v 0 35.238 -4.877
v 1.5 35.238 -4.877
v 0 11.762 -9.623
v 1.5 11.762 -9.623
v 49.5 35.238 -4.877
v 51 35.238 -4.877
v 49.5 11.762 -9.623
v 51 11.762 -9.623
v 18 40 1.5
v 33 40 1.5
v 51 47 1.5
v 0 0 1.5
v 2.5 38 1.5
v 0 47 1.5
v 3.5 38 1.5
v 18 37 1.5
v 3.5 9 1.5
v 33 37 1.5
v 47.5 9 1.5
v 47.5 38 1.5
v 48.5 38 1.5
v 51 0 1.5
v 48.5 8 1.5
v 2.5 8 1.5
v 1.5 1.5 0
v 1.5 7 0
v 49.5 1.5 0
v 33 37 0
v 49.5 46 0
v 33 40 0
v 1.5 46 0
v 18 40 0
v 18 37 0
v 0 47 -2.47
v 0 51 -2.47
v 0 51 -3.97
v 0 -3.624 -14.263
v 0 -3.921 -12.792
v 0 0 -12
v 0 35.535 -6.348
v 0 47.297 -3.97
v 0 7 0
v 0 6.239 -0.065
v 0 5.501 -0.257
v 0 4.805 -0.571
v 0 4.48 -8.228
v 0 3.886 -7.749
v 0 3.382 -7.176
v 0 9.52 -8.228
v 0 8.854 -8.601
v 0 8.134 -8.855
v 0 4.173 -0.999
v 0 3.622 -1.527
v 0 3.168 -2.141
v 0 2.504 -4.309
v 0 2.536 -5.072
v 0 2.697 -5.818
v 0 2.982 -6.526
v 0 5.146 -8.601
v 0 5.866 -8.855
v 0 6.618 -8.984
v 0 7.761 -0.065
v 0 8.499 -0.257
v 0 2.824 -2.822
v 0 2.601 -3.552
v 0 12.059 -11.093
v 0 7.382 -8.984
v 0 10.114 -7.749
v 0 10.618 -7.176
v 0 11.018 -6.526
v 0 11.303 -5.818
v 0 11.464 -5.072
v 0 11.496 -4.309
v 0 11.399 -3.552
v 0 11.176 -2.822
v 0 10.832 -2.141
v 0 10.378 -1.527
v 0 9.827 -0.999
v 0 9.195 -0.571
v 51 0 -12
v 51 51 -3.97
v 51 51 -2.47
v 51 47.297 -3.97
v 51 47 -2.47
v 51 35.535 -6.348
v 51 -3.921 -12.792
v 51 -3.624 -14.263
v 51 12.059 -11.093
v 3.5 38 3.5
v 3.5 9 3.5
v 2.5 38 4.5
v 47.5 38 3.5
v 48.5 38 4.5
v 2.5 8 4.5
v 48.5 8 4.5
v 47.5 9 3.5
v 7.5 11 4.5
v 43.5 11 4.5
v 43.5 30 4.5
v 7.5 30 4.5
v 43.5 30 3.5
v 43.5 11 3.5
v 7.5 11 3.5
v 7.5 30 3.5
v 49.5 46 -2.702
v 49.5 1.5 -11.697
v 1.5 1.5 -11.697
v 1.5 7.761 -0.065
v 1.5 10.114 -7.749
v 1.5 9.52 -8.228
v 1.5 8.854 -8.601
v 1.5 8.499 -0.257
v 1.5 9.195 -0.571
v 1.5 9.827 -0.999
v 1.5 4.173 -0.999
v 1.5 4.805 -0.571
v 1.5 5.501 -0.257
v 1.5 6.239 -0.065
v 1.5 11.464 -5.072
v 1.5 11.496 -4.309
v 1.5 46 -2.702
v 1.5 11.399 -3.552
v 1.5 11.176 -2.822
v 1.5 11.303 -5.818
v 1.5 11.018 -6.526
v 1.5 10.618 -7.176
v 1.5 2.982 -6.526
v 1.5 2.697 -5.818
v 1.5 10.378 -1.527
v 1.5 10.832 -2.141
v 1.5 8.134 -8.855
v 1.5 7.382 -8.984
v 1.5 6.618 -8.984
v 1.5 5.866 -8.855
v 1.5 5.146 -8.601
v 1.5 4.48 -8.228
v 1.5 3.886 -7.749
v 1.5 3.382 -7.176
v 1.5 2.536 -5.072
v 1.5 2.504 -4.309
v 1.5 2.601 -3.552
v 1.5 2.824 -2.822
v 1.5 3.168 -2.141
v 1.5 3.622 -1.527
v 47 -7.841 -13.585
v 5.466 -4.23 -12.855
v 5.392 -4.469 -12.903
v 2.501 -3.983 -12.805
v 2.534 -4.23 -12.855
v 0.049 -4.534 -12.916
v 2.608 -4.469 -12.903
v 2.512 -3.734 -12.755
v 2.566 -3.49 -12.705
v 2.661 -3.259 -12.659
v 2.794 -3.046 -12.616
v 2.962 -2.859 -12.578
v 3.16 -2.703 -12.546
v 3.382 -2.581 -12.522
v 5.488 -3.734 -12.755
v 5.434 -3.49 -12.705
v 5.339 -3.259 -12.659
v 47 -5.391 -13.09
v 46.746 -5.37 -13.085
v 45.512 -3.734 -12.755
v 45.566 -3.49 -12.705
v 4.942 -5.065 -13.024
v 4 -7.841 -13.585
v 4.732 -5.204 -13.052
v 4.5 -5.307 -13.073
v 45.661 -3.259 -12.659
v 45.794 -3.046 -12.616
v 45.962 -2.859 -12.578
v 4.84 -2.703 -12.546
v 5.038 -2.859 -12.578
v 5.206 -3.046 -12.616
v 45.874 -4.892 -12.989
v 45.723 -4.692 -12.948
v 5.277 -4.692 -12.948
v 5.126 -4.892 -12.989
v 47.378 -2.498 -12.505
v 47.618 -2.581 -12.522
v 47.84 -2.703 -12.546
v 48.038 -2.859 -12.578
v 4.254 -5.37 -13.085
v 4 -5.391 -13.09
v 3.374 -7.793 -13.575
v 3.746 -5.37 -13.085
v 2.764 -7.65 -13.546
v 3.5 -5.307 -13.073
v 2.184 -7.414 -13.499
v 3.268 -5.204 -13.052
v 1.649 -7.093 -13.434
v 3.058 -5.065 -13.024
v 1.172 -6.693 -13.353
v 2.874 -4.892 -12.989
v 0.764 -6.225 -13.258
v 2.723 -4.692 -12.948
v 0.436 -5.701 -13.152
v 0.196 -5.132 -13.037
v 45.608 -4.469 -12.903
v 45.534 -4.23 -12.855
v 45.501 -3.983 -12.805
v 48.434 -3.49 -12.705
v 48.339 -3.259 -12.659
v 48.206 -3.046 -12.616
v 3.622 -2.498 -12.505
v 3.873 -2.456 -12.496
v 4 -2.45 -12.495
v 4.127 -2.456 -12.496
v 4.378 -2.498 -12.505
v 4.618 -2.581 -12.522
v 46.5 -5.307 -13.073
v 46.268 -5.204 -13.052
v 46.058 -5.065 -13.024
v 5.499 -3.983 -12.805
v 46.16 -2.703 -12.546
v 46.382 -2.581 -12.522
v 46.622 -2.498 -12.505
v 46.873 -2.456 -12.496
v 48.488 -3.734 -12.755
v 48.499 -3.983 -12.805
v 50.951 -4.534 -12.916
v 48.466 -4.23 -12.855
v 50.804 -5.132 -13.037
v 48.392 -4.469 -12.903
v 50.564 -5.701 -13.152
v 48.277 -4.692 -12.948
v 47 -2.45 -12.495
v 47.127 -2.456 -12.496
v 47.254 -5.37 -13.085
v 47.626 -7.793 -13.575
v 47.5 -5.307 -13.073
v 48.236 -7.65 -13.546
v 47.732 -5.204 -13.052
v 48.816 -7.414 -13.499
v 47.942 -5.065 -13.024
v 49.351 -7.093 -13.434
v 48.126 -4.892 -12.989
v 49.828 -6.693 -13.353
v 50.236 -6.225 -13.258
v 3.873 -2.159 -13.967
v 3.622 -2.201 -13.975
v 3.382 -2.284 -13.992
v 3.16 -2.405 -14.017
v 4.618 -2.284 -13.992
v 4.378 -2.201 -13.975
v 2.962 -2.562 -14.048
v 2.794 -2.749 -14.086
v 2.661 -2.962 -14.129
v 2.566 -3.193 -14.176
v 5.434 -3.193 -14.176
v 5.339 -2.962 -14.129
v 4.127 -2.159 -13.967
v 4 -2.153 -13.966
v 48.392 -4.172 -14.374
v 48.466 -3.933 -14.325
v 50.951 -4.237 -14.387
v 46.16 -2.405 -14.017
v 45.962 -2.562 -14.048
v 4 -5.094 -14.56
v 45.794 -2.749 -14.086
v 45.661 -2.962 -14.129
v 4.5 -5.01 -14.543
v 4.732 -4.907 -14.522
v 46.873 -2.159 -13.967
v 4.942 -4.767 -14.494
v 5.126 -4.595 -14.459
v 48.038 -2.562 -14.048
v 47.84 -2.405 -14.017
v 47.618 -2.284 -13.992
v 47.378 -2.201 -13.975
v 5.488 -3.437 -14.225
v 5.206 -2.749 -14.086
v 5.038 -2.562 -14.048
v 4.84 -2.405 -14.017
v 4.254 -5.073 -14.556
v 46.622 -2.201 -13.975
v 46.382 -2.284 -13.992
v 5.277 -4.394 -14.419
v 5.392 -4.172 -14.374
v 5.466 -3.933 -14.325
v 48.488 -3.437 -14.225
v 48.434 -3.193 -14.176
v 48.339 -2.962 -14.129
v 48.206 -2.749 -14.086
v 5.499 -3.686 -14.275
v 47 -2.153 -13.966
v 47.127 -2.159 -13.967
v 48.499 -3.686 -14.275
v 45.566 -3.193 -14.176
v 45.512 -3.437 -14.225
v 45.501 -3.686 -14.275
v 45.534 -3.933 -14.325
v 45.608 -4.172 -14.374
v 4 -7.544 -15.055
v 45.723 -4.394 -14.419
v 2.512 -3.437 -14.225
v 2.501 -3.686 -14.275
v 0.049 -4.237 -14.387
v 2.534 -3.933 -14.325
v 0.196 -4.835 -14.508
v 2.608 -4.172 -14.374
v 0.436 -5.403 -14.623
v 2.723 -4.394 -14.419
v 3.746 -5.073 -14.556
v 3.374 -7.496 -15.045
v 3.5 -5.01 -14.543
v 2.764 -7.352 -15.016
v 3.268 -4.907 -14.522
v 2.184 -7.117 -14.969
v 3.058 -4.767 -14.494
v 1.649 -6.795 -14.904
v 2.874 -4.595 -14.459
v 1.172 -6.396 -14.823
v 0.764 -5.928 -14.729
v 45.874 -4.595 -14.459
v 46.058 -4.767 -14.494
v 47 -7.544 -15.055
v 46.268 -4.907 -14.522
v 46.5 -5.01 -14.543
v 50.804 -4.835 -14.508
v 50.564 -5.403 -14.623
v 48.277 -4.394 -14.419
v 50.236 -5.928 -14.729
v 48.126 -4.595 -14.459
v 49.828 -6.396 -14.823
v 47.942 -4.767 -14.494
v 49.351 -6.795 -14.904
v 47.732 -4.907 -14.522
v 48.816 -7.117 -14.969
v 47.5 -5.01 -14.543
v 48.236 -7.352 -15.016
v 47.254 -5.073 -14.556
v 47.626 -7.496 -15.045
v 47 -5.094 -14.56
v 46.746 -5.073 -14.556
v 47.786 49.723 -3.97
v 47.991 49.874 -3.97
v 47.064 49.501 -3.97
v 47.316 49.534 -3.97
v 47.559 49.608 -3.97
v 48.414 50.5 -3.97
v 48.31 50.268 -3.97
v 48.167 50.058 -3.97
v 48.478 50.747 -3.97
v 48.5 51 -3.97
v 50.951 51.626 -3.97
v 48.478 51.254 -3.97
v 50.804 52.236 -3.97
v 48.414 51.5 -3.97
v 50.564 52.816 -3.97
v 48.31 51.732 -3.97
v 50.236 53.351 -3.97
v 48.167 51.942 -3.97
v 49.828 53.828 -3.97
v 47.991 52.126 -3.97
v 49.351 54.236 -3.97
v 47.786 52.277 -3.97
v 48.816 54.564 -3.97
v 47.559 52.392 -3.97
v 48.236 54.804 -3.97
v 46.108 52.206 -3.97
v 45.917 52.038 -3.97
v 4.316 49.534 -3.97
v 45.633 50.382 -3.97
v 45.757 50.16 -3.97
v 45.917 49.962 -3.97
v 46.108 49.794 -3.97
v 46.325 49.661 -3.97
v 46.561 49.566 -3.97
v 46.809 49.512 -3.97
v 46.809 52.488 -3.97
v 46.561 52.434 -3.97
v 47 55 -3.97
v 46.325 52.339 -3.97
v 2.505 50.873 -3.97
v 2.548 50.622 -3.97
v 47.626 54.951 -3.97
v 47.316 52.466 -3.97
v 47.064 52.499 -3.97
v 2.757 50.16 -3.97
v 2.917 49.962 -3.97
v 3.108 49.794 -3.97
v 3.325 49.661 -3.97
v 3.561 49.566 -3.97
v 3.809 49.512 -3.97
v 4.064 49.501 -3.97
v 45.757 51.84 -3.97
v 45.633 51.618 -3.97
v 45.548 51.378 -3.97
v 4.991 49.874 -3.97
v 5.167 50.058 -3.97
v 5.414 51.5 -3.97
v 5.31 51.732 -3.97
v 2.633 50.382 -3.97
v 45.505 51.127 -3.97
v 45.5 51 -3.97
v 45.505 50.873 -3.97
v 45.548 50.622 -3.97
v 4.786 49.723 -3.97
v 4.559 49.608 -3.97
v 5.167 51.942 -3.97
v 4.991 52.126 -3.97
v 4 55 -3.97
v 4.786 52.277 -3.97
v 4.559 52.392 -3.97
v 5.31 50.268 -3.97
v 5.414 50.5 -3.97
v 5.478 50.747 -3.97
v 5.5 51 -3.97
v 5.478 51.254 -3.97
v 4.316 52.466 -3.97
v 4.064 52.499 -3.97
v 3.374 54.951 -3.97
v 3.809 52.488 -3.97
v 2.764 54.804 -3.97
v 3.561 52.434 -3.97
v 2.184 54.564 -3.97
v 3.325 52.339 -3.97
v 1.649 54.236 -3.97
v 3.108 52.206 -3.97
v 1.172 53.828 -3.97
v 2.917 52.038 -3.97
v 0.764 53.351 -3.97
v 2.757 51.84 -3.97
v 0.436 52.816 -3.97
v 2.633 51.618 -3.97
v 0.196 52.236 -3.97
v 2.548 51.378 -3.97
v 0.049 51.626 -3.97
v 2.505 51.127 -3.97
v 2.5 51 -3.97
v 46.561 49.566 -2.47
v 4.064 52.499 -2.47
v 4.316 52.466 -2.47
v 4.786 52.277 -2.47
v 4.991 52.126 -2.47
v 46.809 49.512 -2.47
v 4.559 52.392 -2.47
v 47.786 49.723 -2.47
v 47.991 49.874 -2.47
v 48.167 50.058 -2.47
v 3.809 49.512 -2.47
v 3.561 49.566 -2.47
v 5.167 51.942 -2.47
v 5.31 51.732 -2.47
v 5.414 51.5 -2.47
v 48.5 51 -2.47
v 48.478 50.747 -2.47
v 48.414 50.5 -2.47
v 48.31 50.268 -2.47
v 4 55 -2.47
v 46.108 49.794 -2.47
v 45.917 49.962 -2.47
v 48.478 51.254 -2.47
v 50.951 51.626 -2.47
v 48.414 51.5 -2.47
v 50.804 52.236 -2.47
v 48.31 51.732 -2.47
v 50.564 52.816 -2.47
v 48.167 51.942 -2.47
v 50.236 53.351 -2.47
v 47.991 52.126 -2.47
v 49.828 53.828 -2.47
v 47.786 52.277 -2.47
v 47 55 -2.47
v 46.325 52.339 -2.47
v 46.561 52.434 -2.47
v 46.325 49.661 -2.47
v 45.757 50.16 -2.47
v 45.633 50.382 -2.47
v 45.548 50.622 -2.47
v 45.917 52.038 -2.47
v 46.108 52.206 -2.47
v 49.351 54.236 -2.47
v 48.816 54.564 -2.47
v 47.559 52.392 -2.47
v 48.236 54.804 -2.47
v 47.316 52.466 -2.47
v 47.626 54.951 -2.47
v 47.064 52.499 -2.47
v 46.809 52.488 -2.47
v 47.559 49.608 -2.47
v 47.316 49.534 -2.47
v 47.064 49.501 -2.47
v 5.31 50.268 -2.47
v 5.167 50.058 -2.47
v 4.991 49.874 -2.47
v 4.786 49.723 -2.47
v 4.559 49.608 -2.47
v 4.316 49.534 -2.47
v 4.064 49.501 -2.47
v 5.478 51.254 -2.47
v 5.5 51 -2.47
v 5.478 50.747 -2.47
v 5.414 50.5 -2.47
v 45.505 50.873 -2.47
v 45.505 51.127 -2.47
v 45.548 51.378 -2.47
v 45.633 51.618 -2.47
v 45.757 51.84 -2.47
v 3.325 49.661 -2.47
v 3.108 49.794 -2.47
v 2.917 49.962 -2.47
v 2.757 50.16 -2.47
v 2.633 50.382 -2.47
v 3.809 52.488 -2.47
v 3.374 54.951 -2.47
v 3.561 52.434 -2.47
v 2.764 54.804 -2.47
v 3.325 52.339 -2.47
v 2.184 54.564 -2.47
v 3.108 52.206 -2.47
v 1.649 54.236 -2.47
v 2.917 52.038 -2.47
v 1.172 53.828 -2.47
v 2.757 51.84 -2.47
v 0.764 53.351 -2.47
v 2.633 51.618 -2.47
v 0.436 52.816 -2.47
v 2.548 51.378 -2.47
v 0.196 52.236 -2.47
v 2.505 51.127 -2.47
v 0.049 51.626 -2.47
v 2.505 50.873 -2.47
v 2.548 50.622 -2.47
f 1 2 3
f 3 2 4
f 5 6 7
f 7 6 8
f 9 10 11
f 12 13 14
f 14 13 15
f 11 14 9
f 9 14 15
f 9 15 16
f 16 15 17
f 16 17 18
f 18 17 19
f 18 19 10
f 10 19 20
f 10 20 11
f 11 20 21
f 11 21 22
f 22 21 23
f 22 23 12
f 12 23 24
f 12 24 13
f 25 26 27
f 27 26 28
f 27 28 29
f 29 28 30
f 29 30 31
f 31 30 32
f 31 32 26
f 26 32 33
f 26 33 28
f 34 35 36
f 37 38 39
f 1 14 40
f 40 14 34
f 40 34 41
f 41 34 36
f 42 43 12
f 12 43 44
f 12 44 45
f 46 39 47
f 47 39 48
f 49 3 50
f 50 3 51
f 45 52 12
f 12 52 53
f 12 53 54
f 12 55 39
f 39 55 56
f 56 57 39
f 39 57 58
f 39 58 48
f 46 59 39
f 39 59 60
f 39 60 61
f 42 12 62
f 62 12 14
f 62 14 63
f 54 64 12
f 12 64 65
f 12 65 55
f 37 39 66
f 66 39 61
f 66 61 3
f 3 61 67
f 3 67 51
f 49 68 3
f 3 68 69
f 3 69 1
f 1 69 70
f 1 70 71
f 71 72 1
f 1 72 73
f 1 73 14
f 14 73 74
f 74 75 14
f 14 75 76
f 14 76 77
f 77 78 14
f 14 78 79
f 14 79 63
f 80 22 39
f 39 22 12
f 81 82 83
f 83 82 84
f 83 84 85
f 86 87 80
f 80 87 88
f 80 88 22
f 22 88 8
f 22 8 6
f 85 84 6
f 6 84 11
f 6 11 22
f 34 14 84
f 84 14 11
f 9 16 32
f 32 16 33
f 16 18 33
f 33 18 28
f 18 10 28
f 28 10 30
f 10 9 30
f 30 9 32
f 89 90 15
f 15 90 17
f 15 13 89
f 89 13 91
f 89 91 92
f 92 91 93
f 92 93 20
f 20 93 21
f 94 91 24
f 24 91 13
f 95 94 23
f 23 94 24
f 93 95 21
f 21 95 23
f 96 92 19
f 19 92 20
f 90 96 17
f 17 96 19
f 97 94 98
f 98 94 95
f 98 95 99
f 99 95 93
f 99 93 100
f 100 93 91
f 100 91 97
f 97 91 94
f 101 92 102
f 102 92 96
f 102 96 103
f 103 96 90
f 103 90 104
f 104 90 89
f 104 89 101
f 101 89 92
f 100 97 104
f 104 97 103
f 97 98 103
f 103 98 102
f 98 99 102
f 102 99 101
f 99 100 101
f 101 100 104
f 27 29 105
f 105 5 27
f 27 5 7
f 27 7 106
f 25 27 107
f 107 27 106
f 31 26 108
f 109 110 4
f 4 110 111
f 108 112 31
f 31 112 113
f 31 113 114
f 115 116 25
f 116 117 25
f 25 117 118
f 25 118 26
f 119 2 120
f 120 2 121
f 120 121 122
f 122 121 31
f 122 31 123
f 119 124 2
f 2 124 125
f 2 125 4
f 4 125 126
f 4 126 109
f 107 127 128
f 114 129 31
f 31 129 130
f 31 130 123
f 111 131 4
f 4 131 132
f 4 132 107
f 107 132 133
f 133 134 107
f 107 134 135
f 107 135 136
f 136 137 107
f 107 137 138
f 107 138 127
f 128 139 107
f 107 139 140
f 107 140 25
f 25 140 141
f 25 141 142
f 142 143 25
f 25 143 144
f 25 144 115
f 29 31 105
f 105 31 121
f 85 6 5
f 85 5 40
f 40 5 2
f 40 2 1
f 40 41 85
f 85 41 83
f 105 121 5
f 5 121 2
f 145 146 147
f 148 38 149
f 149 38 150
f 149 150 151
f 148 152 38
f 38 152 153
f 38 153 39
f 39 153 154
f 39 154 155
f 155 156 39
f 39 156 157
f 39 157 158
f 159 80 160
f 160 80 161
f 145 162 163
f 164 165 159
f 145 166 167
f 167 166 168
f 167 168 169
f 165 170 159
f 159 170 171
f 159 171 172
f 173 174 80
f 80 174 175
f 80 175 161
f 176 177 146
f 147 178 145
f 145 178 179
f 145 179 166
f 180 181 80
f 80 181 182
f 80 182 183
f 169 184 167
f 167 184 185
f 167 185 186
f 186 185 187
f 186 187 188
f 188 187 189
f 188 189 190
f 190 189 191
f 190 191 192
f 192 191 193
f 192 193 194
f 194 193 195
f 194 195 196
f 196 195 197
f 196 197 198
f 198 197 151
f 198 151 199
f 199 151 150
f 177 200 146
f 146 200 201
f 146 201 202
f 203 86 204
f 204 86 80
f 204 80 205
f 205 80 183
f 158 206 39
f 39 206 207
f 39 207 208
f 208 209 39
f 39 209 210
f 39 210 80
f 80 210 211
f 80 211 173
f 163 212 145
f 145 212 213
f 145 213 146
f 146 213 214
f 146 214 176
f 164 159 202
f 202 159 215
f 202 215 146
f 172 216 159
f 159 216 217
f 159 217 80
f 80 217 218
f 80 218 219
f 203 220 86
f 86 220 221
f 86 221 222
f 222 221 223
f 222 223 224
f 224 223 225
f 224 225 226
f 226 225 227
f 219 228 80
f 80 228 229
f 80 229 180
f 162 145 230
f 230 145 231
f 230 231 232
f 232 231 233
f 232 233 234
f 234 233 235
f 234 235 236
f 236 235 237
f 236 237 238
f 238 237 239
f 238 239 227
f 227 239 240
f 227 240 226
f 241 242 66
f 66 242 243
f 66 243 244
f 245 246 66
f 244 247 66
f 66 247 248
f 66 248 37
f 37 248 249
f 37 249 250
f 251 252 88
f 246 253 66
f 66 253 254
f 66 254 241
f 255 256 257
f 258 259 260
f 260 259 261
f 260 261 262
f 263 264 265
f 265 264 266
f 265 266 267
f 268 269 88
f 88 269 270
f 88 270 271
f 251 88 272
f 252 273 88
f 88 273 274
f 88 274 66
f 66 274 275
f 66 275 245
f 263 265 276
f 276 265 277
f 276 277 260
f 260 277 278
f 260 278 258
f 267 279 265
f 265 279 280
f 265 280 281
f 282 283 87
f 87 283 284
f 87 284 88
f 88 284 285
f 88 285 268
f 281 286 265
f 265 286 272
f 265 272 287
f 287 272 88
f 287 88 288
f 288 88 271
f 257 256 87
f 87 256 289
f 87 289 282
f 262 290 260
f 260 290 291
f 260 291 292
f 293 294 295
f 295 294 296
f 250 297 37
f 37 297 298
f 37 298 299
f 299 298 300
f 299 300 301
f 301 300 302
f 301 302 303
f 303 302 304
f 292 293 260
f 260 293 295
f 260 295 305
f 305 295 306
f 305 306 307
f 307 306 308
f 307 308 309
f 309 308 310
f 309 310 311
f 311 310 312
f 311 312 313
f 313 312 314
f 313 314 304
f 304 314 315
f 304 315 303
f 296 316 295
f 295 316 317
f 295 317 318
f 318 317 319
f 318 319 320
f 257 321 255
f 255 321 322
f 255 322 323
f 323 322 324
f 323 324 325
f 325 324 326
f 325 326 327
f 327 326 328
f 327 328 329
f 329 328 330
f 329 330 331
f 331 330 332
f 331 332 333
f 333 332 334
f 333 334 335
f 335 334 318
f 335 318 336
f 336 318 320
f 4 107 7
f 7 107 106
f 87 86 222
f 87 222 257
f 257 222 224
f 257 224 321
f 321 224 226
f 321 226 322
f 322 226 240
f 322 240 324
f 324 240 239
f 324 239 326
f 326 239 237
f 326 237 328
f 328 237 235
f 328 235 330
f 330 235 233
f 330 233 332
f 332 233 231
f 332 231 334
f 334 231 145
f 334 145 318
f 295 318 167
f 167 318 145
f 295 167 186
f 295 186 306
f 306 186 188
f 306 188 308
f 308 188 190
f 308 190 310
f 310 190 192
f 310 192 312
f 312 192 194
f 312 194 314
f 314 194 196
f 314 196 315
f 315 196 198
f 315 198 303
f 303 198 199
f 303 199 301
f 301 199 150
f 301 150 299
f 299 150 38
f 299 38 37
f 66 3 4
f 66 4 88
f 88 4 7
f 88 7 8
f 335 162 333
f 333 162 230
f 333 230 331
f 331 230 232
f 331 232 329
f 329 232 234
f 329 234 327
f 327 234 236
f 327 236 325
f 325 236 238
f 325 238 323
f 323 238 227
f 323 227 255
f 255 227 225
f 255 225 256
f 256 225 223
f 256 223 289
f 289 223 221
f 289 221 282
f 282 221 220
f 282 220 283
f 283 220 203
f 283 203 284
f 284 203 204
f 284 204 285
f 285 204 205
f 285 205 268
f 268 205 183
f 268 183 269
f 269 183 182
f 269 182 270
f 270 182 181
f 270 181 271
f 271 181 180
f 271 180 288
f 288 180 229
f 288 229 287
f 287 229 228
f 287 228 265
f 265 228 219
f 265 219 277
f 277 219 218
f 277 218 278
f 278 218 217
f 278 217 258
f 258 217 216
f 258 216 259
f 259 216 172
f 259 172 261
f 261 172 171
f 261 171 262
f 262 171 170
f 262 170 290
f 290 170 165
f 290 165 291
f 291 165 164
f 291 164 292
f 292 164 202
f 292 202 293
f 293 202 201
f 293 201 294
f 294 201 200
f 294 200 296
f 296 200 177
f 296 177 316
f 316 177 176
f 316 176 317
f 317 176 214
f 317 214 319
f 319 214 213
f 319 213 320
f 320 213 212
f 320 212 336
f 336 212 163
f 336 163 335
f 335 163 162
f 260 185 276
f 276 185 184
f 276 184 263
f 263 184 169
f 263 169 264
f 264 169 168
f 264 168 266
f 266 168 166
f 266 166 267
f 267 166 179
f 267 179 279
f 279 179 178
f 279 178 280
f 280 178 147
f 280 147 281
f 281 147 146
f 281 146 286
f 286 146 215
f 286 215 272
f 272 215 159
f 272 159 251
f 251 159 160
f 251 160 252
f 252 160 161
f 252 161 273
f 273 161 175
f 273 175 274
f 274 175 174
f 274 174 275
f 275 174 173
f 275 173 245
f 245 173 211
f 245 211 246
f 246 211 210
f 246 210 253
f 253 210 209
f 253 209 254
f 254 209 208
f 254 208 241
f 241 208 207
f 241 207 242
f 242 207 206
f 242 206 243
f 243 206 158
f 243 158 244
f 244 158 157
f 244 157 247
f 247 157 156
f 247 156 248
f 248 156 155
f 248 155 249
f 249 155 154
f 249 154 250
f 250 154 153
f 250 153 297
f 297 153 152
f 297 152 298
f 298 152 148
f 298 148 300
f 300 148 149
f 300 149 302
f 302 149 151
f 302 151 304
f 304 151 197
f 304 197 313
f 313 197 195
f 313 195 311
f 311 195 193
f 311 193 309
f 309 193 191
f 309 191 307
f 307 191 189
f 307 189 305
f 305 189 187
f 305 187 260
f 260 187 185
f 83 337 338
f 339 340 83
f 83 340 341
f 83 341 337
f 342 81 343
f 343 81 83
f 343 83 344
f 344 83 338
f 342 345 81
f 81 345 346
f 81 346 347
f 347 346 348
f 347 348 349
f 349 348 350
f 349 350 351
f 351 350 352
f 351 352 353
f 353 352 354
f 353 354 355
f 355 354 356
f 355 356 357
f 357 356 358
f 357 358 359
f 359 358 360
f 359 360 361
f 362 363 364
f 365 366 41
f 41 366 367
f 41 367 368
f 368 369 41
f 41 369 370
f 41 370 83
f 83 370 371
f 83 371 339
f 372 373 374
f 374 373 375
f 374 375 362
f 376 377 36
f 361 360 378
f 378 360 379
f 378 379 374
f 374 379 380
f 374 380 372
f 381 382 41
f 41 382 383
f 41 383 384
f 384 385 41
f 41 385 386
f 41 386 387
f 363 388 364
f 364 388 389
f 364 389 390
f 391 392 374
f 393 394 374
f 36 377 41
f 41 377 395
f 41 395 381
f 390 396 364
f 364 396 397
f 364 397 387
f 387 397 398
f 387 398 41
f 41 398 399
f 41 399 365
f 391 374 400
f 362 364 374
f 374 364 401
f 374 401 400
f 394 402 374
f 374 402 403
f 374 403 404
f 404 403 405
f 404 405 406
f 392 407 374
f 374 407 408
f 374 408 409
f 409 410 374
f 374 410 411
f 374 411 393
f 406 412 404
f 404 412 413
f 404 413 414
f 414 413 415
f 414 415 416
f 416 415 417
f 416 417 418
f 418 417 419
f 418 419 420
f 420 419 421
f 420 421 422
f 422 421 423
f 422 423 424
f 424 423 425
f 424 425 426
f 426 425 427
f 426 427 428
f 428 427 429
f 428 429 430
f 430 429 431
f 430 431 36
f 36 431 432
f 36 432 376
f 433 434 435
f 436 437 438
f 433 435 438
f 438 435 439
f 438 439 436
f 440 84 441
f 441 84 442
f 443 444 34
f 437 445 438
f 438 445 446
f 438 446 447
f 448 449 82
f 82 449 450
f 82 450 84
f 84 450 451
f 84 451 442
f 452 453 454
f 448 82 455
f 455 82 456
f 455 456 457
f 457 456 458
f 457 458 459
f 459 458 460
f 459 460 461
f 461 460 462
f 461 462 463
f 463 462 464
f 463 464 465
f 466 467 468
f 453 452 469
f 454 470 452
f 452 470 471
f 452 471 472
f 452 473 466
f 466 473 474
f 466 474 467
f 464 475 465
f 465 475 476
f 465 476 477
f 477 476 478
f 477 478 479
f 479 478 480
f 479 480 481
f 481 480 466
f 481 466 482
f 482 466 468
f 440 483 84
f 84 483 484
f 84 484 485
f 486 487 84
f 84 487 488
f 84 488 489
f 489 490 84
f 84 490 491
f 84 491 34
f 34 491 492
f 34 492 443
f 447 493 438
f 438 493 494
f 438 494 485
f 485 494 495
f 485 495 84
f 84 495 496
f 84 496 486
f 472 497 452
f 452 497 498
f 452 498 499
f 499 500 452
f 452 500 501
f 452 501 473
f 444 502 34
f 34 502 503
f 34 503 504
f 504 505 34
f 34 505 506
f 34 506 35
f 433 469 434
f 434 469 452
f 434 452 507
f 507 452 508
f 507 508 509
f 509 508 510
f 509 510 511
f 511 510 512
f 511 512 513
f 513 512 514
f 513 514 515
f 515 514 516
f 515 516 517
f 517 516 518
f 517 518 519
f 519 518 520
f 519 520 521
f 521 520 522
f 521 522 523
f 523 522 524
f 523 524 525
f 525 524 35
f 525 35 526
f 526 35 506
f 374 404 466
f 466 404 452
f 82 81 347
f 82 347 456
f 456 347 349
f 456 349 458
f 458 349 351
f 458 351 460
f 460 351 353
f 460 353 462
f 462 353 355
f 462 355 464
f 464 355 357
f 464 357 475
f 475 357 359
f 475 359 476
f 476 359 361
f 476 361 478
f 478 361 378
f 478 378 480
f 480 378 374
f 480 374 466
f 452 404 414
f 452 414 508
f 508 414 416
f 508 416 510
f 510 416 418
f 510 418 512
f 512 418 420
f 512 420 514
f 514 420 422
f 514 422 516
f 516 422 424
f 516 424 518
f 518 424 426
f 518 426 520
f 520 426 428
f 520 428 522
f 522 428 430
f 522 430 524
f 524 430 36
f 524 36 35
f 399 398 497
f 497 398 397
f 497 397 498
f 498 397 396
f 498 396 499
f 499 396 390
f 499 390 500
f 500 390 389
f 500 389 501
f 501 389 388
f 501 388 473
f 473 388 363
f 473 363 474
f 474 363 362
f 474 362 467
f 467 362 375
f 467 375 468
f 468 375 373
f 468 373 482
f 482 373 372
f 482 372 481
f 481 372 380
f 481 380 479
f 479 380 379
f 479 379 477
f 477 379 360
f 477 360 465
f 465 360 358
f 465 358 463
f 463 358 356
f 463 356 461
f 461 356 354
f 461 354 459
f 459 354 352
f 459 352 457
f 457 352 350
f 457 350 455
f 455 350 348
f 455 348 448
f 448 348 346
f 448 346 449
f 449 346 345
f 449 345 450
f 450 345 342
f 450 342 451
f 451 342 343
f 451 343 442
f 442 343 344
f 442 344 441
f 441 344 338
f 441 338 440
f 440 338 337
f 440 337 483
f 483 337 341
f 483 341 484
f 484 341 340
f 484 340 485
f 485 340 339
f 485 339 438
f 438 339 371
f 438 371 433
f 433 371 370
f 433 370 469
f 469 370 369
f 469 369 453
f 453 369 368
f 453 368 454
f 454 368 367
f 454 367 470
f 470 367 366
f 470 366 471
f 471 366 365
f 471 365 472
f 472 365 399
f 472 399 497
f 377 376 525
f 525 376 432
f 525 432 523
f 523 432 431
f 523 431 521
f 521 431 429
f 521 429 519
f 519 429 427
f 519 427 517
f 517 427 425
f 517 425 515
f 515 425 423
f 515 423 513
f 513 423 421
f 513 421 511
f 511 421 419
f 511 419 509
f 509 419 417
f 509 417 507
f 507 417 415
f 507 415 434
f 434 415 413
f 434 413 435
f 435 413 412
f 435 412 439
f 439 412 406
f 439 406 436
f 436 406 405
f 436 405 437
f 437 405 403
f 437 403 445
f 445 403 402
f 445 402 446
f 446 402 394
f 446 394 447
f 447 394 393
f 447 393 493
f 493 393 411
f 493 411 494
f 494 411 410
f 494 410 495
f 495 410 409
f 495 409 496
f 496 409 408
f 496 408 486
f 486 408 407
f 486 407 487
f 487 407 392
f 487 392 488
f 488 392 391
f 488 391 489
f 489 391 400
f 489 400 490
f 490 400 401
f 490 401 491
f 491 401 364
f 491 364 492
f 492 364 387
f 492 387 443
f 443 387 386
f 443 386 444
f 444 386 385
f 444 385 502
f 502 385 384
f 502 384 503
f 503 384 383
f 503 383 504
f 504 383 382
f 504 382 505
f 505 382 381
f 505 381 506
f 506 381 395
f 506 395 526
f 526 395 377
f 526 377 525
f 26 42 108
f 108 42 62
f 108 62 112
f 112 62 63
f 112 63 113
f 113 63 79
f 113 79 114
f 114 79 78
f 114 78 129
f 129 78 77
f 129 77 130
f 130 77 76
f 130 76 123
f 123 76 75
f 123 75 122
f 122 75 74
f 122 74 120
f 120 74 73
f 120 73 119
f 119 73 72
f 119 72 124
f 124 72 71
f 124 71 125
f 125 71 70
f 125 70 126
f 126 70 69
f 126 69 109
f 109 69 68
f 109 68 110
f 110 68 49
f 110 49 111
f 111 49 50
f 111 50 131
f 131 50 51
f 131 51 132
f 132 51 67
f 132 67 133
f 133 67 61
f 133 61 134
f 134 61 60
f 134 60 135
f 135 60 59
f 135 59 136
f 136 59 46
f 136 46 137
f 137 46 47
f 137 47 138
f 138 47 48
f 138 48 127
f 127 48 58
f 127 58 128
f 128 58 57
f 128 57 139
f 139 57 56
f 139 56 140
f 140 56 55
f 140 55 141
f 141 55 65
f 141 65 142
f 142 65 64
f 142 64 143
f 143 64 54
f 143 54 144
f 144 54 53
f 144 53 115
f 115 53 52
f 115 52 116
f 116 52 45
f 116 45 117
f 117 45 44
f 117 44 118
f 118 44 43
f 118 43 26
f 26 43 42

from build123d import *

# Parameters (mm, degrees)
SKETCH_1_W          = 51
SKETCH_1_H          = 47
SKETCH_1_W_2        = 15
SKETCH_1_H_2        = 3
EXTRUDE_1_DEPTH     = 1.5
EXTRUDE_2_DEPTH     = 2
SKETCH_3_W          = 46
SKETCH_3_H          = 30
SKETCH_3_W_2        = 36
SKETCH_3_H_2        = 19
EXTRUDE_3_DEPTH     = 1
SKETCH_4_W          = 51
SKETCH_4_H          = 47
SKETCH_4_W_2        = 48
SKETCH_4_H_2        = 44.5
EXTRUDE_4_DEPTH     = 12
CUT_EXTRUDE_1_DEPTH = 52
SKETCH_6_W          = 51
SKETCH_6_H          = 12
SKETCH_6_R          = 1.5
EXTRUDE_5_DEPTH     = 1.5
SKETCH_7_W          = 1.5
SKETCH_7_H          = 8
EXTRUDE_6_DEPTH     = 51
FILLET_1_R          = 4
CUT_EXTRUDE_2_REACH = 14.585
SKETCH_8_R          = 1.5
CUT_EXTRUDE_3_REACH = 53
SKETCH_9_R          = 4.5


with BuildPart() as part:
    # 草图1 → 凸台-拉伸1 (new body)
    with BuildSketch(Plane.XY):
        with Locations((25.5, 23.5)):
            Rectangle(SKETCH_1_W, SKETCH_1_H)
        with Locations((25.5, 38.5)):
            Rectangle(SKETCH_1_W_2, SKETCH_1_H_2, mode=Mode.SUBTRACT)
    extrude(amount=EXTRUDE_1_DEPTH)

    # 草图2 → 凸台-拉伸2 (add)
    with BuildSketch(Plane.XY.offset(1.5)):
        Polygon((2.5, 8), (48.5, 8), (48.5, 38), (47.5, 38), (47.5, 9), (3.5, 9), (3.5, 38), (2.5, 38), align=None)
    extrude(amount=EXTRUDE_2_DEPTH)

    # 草图3 → 凸台-拉伸3 (add)
    with BuildSketch(Plane.XY.offset(3.5)):
        with Locations((25.5, 23)):
            Rectangle(SKETCH_3_W, SKETCH_3_H)
        with Locations((25.5, 20.5)):
            Rectangle(SKETCH_3_W_2, SKETCH_3_H_2, mode=Mode.SUBTRACT)
    extrude(amount=EXTRUDE_3_DEPTH)

    # 草图4 → 凸台-拉伸4 (add)
    with BuildSketch(Plane(origin=(0, 0, 0), x_dir=(-1, 0, 0), z_dir=(0, 0, -1))):
        with Locations((-25.5, 23.5)):
            Rectangle(SKETCH_4_W, SKETCH_4_H)
        with Locations((-25.5, 23.75)):
            Rectangle(SKETCH_4_W_2, SKETCH_4_H_2, mode=Mode.SUBTRACT)
    extrude(amount=EXTRUDE_4_DEPTH)

    # 草图5 → 切除-拉伸1 (cut, through all)
    with BuildSketch(Plane(origin=(51, 0, 0), x_dir=(0, 0, -1), z_dir=(1, 0, 0))):
        Polygon((2.5, 47), (12, 47), (12, 0), align=None)
    extrude(amount=-CUT_EXTRUDE_1_DEPTH, mode=Mode.SUBTRACT)

    # 草图6 → 凸台-拉伸5 (add)
    with BuildSketch(Plane(origin=(0, 2.330325106, -11.52897684), x_dir=(-1, 0, 0), z_dir=(0, 0.198120998, -0.980177571))):
        with Locations((-25.5, 39.573043325)):
            Rectangle(SKETCH_6_W, SKETCH_6_H)
        with BuildLine():
            Line((-51, 9.62254802), (0, 9.62254802))
            Line((0, 9.62254802), (0, -6.37745198))
            ThreePointArc((0, -6.37745198), (-1.171572875, -9.205879105), (-4, -10.37745198))
            Line((-4, -10.37745198), (-47, -10.37745198))
            ThreePointArc((-47, -10.37745198), (-49.828427125, -9.205879105), (-51, -6.37745198))
            Line((-51, -6.37745198), (-51, 9.62254802))
        make_face()
        with Locations((-47, -6.37745198)):
            Circle(SKETCH_6_R, mode=Mode.SUBTRACT)
        with Locations((-4, -6.37745198)):
            Circle(SKETCH_6_R, mode=Mode.SUBTRACT)
    extrude(amount=EXTRUDE_5_DEPTH)

    # 草图7 → 凸台-拉伸6 (add)
    with BuildSketch(Plane(origin=(51, 0, 0), x_dir=(0, 0, -1), z_dir=(1, 0, 0))):
        with Locations((3.220266356, 51)):
            Rectangle(SKETCH_7_W, SKETCH_7_H)
    extrude(amount=-EXTRUDE_6_DEPTH)

    # 圆角1
    fillet_1_edges = [part.edges().sort_by_distance(p)[0] for p in [
        (51, 55, -3.220266356),
        (0, 55, -3.220266356),
    ]]
    fillet(fillet_1_edges, radius=FILLET_1_R)

    # 草图8 → 切除-拉伸2 (cut, up to next)
    with BuildSketch(Plane.XY.offset(-2.470266356), mode=Mode.PRIVATE) as cut_extrude_2_sk1:
        with Locations((4, 51)):
            Circle(SKETCH_8_R)
    cut_extrude_2_tool1 = extrude(cut_extrude_2_sk1.sketch, amount=-CUT_EXTRUDE_2_REACH, mode=Mode.PRIVATE) & part.part
    add(cut_extrude_2_tool1.solids().sort_by_distance((4, 51, -2.470266))[0], mode=Mode.SUBTRACT)
    # 草图8 → 切除-拉伸2 (cut, up to next)
    with BuildSketch(Plane.XY.offset(-2.470266356), mode=Mode.PRIVATE) as cut_extrude_2_sk2:
        with Locations((47, 51)):
            Circle(SKETCH_8_R)
    cut_extrude_2_tool2 = extrude(cut_extrude_2_sk2.sketch, amount=-CUT_EXTRUDE_2_REACH, mode=Mode.PRIVATE) & part.part
    add(cut_extrude_2_tool2.solids().sort_by_distance((47, 51, -2.470266))[0], mode=Mode.SUBTRACT)

    # 草图9 → 切除-拉伸3 (cut, up to next)
    with BuildSketch(Plane.ZY, mode=Mode.PRIVATE) as cut_extrude_3_sk1:
        with Locations((-4.5, 7)):
            Circle(SKETCH_9_R)
    cut_extrude_3_tool1 = extrude(cut_extrude_3_sk1.sketch, amount=-CUT_EXTRUDE_3_REACH, mode=Mode.PRIVATE) & part.part
    add(cut_extrude_3_tool1.solids().sort_by_distance((0, 7, -4.5))[0], mode=Mode.SUBTRACT)


solid = part.part
